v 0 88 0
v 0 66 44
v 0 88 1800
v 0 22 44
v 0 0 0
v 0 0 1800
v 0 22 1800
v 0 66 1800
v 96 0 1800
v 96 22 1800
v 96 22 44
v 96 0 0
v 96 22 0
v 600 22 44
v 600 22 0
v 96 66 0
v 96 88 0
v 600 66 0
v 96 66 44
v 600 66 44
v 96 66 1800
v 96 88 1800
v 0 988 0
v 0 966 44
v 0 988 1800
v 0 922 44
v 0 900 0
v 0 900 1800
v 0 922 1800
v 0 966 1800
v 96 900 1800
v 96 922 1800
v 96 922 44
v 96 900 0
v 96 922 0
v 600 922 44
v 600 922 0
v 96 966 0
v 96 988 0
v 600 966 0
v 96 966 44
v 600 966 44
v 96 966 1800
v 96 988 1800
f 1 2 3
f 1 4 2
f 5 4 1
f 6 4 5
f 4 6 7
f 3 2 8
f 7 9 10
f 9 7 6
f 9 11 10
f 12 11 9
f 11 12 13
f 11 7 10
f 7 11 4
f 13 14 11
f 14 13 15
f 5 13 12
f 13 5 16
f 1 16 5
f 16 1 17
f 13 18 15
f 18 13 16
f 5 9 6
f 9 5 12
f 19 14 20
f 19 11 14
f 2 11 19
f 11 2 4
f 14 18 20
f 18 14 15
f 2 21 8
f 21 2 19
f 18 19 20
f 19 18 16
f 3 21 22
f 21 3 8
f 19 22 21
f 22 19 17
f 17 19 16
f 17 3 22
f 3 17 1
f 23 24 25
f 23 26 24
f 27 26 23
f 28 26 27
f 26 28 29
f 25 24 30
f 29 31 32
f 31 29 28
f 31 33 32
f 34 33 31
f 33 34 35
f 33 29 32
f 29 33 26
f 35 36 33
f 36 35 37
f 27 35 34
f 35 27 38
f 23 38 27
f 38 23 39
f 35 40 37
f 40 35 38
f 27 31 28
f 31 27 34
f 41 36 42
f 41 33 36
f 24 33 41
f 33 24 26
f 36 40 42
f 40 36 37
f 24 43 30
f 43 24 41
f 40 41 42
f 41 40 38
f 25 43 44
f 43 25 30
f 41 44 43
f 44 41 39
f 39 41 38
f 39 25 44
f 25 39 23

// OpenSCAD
dx = 600;
dy = 900;
dzl = 60;
dzh = 110;
x=0;
y=1;
z=2;

ls=[96,22,1800];
ss=[dx,44,44];

module leg(d){
     translate(d){
          cube(ls);
          translate([0,ls[y],0]) cube(ss);
          translate([0,ls[y] + ss[y],0]) cube(ls);
     }
}

leg([0,0,0]);
leg([0,dy,0]);
echo(ls[z]);
